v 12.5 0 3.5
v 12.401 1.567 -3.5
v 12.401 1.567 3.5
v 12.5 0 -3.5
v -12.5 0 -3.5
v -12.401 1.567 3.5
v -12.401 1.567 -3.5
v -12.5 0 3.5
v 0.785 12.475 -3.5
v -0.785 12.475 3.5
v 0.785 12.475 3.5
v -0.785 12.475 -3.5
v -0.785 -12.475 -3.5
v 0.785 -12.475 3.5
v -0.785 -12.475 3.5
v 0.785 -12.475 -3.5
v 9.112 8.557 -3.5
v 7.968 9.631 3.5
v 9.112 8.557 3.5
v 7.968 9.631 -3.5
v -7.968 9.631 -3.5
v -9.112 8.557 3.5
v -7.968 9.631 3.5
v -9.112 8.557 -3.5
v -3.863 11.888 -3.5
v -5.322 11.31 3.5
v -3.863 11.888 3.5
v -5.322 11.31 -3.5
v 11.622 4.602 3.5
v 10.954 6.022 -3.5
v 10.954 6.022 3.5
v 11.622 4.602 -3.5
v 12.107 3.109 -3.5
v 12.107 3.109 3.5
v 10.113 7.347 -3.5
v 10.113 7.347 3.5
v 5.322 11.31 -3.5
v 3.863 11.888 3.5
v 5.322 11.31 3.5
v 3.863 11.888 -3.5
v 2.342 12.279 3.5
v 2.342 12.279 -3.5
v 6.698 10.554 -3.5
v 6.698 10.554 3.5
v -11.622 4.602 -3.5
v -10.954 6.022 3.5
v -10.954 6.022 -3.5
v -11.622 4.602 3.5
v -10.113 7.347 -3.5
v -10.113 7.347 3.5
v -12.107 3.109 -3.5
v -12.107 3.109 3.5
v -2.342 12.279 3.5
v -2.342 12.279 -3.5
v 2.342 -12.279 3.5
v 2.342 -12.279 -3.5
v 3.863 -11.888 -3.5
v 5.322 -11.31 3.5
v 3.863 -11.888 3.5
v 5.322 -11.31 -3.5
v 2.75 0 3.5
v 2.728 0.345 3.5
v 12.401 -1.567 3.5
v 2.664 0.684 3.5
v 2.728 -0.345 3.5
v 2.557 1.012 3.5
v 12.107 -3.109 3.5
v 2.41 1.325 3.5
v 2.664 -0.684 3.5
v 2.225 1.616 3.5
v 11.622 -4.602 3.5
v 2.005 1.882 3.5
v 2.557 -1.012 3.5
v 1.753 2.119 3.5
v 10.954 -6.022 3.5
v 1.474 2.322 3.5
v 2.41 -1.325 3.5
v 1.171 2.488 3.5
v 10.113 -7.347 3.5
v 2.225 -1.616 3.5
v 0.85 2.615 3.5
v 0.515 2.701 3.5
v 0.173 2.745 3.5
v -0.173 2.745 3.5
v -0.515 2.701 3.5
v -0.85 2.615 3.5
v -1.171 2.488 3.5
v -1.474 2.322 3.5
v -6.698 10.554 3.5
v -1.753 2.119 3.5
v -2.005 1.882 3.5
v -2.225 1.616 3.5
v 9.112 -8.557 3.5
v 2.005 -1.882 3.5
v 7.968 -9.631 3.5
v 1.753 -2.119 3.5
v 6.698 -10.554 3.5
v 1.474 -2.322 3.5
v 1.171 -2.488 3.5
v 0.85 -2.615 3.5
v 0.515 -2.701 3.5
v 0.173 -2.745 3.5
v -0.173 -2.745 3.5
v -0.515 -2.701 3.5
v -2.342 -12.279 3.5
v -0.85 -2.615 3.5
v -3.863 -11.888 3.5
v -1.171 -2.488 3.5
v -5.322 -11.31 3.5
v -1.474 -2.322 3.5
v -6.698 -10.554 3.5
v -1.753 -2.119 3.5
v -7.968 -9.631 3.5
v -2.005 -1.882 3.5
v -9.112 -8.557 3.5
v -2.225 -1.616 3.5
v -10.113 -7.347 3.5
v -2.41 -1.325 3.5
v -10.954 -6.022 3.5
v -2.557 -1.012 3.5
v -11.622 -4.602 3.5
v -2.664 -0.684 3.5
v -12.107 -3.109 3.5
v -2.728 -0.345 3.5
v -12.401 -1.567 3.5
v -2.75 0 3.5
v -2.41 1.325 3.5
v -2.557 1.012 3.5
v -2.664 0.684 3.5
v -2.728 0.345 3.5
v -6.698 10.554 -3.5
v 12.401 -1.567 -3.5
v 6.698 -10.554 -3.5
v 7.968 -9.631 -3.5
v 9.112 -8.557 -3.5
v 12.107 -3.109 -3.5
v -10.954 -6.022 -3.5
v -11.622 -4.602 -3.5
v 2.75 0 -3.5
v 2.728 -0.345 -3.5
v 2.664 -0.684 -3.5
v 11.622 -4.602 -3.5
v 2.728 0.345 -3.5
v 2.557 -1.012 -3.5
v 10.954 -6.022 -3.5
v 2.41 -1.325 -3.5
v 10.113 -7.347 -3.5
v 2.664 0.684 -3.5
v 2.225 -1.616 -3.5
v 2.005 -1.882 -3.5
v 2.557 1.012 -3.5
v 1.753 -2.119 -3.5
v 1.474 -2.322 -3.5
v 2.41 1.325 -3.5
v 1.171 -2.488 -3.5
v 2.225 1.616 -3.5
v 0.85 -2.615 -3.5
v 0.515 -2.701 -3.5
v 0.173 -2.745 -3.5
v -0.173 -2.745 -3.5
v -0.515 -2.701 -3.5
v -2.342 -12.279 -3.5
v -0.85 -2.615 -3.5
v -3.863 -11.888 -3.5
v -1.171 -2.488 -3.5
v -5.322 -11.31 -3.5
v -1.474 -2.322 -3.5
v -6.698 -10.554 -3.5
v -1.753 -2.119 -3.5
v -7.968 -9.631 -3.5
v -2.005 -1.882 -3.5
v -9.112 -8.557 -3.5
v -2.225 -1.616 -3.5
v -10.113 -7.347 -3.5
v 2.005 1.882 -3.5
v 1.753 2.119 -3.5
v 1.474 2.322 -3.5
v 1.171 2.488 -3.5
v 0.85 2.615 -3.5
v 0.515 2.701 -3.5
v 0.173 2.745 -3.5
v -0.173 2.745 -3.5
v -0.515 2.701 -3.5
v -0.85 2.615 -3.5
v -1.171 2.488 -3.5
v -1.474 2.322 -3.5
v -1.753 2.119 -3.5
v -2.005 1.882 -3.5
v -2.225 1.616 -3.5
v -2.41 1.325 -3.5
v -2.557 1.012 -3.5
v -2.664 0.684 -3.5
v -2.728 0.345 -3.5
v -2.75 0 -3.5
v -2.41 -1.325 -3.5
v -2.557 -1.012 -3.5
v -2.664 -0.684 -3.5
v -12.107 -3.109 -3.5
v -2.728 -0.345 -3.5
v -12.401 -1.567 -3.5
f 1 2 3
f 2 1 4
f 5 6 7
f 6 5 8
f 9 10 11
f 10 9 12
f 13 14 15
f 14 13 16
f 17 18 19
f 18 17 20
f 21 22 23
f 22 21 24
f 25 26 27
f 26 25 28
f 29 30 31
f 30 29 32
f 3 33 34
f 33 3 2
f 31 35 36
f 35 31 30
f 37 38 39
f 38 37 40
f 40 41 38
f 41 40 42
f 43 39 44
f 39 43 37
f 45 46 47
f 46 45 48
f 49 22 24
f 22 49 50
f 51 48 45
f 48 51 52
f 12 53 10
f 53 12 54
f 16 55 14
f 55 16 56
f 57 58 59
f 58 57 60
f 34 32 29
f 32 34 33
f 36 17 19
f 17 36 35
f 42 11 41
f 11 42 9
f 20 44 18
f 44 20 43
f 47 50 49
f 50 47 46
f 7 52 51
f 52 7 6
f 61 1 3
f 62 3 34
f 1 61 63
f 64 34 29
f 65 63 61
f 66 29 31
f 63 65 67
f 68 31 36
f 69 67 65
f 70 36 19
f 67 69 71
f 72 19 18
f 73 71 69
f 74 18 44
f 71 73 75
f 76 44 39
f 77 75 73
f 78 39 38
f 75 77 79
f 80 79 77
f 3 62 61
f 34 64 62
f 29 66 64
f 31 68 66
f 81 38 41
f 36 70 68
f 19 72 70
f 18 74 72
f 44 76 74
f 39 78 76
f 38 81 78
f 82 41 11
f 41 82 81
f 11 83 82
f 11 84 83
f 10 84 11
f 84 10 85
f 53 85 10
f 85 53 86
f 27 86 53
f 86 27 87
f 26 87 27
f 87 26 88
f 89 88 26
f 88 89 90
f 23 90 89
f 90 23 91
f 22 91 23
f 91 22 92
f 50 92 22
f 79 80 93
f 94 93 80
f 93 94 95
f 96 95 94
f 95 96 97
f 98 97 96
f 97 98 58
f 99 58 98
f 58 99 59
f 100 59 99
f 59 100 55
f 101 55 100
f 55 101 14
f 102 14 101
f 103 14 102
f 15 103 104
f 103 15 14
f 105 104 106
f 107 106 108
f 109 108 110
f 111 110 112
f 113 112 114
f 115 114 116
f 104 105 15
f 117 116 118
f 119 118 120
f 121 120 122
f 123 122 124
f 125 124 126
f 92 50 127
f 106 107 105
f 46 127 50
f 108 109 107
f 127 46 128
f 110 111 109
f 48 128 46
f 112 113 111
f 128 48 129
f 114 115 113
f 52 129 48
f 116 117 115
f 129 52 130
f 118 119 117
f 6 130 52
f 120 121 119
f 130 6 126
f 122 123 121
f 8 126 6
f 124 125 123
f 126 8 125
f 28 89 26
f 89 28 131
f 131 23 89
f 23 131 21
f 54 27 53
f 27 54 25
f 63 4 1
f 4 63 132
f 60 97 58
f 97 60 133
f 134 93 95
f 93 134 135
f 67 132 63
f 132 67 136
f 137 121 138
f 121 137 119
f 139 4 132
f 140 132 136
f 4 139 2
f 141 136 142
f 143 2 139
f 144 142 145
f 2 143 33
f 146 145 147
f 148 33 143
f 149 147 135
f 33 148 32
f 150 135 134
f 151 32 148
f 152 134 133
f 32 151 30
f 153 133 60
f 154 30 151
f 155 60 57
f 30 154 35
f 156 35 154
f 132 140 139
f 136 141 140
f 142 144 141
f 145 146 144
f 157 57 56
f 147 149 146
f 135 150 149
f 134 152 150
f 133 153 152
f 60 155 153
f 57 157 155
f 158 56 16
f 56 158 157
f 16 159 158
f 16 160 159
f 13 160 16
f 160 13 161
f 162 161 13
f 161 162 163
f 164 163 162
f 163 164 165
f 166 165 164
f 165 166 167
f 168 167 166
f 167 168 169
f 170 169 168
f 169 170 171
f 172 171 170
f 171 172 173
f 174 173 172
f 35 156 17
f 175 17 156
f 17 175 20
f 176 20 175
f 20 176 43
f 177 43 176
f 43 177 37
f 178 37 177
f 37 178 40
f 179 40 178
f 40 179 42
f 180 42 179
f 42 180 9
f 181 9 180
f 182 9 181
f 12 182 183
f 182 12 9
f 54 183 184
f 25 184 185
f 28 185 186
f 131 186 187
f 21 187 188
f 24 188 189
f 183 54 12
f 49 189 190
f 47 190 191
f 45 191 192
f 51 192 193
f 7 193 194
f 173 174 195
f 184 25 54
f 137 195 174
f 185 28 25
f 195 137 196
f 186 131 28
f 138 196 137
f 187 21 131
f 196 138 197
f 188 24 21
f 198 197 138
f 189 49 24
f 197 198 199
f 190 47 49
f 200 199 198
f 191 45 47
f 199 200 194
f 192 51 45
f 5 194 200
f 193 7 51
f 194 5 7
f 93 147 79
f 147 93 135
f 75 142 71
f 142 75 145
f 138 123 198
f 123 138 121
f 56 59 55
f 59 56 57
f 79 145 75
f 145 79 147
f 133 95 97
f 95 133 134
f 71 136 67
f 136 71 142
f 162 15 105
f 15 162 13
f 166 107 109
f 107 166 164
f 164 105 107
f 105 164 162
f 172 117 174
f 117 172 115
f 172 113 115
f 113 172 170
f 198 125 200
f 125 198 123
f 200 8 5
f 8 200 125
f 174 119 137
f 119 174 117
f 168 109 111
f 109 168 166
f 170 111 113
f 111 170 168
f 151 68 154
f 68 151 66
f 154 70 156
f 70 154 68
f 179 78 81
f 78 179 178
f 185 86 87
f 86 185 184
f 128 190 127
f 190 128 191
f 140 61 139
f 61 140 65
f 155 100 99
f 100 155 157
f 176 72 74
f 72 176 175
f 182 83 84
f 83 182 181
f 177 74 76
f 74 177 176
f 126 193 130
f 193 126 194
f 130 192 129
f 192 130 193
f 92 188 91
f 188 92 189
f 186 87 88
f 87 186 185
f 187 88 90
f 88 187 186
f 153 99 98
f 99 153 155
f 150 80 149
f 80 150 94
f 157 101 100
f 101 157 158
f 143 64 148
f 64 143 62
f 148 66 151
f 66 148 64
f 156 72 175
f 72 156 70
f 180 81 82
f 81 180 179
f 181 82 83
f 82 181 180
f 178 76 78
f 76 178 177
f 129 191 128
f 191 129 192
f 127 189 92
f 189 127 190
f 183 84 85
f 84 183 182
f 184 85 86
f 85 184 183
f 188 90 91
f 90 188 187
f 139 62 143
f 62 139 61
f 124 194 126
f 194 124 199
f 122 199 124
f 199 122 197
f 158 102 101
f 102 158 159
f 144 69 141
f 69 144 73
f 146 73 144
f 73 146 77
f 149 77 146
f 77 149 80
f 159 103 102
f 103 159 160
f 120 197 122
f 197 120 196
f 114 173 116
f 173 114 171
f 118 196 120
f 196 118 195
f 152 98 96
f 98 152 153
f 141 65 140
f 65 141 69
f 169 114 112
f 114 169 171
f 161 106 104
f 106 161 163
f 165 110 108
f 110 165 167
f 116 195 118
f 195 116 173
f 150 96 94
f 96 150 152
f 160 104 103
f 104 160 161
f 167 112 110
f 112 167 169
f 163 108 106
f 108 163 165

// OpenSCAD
$fn = 50;


difference() {
	union() {
		translate(v = [0, 0, -3.5000000000]) {
			cylinder(h = 7, r = 12.5000000000);
		}
	}
	union() {
		translate(v = [0, 0, -100.0000000000]) {
			cylinder(h = 200, r = 2.7500000000);
		}
	}
}
